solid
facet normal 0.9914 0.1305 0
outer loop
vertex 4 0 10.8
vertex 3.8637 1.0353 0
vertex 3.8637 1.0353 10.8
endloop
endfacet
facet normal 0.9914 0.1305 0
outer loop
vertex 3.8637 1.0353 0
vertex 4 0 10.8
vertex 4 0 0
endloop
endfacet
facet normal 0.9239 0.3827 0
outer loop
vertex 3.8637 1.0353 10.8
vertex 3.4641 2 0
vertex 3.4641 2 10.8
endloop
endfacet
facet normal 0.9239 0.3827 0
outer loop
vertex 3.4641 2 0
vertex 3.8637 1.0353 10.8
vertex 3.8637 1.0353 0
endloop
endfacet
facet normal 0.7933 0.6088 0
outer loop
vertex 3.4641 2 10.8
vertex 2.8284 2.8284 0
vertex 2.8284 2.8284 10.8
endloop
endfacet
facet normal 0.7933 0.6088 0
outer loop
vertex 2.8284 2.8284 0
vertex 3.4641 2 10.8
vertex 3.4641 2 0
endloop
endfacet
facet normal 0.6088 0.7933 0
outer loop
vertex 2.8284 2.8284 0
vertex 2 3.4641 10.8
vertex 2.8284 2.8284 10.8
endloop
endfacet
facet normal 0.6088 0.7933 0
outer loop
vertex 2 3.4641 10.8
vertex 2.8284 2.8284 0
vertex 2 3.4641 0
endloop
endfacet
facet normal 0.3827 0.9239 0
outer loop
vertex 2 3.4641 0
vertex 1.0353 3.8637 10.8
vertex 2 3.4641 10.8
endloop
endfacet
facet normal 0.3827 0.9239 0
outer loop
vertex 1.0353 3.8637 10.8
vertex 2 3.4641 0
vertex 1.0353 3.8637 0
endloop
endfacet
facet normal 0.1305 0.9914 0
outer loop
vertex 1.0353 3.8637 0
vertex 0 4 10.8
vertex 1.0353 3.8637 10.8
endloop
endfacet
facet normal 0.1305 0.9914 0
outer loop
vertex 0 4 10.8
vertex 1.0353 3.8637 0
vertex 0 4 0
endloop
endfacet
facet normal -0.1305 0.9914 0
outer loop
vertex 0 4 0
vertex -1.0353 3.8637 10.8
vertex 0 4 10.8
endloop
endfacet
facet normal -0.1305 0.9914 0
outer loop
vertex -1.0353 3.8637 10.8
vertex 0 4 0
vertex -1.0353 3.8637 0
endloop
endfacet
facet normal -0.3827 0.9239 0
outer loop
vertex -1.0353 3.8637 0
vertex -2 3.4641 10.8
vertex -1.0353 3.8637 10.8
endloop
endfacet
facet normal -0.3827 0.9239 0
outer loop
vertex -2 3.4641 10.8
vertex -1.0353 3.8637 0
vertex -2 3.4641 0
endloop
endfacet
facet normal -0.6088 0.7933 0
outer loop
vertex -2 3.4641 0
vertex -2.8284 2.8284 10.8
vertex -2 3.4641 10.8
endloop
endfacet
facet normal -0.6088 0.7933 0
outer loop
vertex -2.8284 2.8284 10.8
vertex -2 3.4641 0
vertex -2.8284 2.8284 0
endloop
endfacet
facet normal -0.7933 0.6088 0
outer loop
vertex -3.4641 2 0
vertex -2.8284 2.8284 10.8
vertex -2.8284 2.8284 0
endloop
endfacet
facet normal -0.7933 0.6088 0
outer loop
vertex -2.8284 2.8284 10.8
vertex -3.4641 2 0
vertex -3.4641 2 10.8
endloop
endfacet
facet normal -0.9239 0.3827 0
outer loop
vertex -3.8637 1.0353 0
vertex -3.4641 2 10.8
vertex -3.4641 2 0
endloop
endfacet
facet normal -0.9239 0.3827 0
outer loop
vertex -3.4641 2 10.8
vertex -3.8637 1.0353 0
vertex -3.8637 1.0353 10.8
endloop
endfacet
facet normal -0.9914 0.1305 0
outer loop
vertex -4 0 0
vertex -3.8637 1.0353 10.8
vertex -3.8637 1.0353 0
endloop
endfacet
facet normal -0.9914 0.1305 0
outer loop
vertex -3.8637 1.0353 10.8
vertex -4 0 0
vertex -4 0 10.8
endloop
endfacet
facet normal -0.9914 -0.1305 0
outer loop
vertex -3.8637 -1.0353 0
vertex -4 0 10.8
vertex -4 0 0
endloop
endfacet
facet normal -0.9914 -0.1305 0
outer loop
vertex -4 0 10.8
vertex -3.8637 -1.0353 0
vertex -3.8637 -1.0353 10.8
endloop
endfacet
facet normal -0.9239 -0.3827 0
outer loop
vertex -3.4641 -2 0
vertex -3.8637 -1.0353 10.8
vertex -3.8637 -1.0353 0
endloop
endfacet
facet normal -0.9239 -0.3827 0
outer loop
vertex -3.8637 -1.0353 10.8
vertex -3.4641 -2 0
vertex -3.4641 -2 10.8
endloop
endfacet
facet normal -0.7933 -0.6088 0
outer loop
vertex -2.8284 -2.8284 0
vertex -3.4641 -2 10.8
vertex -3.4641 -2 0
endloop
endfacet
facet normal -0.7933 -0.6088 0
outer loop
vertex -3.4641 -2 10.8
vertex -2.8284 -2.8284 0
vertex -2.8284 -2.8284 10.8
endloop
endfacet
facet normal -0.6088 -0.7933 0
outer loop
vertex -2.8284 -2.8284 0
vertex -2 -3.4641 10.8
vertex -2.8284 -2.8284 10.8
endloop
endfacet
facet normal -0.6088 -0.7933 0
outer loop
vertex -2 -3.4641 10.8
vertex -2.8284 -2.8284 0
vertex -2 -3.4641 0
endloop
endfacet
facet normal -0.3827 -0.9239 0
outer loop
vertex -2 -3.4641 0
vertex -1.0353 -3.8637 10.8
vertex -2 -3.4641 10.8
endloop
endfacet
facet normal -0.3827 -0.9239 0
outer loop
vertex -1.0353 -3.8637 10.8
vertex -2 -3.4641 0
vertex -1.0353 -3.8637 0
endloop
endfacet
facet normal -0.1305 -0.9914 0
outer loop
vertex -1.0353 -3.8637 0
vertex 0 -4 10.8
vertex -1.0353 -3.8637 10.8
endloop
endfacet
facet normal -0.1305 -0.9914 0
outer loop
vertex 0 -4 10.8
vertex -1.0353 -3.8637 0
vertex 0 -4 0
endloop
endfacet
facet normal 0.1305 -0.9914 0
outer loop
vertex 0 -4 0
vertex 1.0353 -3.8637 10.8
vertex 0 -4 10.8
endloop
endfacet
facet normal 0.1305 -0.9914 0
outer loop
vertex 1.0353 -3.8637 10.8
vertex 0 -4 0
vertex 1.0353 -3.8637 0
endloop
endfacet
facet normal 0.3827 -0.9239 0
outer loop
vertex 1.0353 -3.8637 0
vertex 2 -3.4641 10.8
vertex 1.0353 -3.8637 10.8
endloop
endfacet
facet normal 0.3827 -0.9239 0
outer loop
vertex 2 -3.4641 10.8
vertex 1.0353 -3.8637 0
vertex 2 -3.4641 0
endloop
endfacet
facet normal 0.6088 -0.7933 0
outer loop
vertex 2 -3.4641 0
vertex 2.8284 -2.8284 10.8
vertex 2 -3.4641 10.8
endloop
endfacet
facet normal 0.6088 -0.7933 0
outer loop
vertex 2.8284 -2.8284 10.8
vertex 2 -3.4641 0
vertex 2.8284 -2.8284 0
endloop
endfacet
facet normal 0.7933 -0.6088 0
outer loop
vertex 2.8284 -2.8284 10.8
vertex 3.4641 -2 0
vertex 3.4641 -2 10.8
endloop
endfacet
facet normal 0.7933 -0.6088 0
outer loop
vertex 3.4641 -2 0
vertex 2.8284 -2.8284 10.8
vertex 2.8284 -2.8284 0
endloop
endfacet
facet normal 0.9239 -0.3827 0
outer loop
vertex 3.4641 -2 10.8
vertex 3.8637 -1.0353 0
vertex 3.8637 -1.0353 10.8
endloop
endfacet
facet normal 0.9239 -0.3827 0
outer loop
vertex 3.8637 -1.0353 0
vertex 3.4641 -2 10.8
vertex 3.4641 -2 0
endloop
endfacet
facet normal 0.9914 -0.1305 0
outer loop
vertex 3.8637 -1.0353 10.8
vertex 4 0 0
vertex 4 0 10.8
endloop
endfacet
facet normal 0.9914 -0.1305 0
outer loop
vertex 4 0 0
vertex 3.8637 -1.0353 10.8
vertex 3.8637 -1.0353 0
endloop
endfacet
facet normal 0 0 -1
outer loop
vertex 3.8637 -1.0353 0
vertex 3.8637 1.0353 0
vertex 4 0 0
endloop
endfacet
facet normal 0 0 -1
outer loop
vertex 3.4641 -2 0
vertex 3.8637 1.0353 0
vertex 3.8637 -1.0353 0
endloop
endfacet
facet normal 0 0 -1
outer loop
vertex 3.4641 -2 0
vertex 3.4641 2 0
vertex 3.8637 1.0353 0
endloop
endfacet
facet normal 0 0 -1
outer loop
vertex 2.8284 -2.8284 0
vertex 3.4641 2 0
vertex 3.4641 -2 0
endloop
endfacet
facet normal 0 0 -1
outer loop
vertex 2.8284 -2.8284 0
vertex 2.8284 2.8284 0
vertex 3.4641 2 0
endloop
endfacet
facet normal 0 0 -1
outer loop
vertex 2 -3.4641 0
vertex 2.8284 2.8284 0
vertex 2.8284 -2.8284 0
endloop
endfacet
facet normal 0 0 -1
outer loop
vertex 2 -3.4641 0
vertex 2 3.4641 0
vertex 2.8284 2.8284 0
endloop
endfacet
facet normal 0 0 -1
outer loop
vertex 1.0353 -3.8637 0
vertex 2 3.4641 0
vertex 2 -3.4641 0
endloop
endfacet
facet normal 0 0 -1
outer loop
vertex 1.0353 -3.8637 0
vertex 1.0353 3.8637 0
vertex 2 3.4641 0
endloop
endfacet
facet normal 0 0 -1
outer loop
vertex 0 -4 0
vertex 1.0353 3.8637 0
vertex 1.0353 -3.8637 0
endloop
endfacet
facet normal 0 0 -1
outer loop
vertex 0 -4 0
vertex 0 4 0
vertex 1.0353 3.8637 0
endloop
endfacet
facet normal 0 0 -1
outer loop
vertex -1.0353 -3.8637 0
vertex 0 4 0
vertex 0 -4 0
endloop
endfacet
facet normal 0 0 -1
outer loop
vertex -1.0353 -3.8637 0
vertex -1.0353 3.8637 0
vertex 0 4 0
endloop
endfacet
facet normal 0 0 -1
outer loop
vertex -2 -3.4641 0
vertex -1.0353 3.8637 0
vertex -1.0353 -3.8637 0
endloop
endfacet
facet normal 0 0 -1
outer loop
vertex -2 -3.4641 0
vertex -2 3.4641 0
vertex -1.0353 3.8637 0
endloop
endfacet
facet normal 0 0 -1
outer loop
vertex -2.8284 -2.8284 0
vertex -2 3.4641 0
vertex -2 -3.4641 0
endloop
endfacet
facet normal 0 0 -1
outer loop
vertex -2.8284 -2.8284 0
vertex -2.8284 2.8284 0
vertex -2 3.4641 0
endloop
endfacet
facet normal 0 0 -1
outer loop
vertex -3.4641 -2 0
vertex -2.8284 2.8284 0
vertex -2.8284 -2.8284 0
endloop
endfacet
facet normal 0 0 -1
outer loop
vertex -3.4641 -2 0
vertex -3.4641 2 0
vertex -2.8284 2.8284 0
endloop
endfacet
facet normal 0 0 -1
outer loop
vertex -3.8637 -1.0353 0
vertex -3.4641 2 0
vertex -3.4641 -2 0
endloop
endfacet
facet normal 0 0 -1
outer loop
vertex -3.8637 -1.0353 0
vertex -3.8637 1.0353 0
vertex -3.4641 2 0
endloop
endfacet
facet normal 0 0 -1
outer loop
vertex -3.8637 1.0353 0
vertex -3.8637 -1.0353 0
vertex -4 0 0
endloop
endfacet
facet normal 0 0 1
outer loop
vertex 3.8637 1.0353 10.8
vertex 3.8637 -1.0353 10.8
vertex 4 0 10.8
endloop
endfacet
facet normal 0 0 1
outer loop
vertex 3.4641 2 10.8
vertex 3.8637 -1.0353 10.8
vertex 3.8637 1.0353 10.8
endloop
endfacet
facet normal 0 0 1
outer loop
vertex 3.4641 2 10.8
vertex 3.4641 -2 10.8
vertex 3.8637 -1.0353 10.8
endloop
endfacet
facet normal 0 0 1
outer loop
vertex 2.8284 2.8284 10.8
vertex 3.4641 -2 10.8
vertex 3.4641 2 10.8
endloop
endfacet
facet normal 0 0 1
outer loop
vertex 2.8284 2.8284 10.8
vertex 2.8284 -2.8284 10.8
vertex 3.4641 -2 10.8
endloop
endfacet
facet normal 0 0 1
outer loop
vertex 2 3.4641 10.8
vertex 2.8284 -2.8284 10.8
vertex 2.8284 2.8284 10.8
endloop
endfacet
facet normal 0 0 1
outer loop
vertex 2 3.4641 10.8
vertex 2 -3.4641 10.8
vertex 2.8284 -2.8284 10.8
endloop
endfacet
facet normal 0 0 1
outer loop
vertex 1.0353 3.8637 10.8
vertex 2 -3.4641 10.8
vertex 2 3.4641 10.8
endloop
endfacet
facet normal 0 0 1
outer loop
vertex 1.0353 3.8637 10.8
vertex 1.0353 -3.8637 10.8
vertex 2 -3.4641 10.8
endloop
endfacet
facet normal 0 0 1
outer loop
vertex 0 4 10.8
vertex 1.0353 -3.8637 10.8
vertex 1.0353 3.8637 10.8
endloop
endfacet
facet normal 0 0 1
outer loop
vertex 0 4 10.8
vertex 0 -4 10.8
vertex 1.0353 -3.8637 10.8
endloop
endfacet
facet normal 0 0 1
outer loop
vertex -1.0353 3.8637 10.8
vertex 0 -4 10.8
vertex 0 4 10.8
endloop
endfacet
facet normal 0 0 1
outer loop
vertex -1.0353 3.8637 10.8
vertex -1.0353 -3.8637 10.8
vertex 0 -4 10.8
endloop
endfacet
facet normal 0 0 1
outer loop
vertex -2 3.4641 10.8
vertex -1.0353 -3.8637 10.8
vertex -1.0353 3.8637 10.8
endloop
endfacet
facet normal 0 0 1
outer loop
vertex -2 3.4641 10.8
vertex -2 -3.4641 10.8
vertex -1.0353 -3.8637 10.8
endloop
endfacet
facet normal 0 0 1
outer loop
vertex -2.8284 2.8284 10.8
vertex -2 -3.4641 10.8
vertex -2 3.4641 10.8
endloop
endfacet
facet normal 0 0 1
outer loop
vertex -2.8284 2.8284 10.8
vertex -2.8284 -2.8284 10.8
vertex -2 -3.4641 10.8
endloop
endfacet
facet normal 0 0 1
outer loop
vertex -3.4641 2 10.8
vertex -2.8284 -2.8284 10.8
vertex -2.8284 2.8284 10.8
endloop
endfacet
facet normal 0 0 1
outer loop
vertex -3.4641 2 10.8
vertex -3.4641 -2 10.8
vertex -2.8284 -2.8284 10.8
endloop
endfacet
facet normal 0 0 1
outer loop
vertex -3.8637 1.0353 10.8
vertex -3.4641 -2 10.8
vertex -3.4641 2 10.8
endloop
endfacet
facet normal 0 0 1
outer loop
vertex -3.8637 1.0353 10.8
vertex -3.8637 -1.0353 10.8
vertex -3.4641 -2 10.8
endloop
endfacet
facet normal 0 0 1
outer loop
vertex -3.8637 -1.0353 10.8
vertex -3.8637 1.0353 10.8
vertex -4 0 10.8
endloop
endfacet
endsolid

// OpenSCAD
module glued_standoff(
    height = 10.8,
    diameter = 8,
    $fn = 24
) {
    cylinder(h = height, d = diameter);
}

glued_standoff();
